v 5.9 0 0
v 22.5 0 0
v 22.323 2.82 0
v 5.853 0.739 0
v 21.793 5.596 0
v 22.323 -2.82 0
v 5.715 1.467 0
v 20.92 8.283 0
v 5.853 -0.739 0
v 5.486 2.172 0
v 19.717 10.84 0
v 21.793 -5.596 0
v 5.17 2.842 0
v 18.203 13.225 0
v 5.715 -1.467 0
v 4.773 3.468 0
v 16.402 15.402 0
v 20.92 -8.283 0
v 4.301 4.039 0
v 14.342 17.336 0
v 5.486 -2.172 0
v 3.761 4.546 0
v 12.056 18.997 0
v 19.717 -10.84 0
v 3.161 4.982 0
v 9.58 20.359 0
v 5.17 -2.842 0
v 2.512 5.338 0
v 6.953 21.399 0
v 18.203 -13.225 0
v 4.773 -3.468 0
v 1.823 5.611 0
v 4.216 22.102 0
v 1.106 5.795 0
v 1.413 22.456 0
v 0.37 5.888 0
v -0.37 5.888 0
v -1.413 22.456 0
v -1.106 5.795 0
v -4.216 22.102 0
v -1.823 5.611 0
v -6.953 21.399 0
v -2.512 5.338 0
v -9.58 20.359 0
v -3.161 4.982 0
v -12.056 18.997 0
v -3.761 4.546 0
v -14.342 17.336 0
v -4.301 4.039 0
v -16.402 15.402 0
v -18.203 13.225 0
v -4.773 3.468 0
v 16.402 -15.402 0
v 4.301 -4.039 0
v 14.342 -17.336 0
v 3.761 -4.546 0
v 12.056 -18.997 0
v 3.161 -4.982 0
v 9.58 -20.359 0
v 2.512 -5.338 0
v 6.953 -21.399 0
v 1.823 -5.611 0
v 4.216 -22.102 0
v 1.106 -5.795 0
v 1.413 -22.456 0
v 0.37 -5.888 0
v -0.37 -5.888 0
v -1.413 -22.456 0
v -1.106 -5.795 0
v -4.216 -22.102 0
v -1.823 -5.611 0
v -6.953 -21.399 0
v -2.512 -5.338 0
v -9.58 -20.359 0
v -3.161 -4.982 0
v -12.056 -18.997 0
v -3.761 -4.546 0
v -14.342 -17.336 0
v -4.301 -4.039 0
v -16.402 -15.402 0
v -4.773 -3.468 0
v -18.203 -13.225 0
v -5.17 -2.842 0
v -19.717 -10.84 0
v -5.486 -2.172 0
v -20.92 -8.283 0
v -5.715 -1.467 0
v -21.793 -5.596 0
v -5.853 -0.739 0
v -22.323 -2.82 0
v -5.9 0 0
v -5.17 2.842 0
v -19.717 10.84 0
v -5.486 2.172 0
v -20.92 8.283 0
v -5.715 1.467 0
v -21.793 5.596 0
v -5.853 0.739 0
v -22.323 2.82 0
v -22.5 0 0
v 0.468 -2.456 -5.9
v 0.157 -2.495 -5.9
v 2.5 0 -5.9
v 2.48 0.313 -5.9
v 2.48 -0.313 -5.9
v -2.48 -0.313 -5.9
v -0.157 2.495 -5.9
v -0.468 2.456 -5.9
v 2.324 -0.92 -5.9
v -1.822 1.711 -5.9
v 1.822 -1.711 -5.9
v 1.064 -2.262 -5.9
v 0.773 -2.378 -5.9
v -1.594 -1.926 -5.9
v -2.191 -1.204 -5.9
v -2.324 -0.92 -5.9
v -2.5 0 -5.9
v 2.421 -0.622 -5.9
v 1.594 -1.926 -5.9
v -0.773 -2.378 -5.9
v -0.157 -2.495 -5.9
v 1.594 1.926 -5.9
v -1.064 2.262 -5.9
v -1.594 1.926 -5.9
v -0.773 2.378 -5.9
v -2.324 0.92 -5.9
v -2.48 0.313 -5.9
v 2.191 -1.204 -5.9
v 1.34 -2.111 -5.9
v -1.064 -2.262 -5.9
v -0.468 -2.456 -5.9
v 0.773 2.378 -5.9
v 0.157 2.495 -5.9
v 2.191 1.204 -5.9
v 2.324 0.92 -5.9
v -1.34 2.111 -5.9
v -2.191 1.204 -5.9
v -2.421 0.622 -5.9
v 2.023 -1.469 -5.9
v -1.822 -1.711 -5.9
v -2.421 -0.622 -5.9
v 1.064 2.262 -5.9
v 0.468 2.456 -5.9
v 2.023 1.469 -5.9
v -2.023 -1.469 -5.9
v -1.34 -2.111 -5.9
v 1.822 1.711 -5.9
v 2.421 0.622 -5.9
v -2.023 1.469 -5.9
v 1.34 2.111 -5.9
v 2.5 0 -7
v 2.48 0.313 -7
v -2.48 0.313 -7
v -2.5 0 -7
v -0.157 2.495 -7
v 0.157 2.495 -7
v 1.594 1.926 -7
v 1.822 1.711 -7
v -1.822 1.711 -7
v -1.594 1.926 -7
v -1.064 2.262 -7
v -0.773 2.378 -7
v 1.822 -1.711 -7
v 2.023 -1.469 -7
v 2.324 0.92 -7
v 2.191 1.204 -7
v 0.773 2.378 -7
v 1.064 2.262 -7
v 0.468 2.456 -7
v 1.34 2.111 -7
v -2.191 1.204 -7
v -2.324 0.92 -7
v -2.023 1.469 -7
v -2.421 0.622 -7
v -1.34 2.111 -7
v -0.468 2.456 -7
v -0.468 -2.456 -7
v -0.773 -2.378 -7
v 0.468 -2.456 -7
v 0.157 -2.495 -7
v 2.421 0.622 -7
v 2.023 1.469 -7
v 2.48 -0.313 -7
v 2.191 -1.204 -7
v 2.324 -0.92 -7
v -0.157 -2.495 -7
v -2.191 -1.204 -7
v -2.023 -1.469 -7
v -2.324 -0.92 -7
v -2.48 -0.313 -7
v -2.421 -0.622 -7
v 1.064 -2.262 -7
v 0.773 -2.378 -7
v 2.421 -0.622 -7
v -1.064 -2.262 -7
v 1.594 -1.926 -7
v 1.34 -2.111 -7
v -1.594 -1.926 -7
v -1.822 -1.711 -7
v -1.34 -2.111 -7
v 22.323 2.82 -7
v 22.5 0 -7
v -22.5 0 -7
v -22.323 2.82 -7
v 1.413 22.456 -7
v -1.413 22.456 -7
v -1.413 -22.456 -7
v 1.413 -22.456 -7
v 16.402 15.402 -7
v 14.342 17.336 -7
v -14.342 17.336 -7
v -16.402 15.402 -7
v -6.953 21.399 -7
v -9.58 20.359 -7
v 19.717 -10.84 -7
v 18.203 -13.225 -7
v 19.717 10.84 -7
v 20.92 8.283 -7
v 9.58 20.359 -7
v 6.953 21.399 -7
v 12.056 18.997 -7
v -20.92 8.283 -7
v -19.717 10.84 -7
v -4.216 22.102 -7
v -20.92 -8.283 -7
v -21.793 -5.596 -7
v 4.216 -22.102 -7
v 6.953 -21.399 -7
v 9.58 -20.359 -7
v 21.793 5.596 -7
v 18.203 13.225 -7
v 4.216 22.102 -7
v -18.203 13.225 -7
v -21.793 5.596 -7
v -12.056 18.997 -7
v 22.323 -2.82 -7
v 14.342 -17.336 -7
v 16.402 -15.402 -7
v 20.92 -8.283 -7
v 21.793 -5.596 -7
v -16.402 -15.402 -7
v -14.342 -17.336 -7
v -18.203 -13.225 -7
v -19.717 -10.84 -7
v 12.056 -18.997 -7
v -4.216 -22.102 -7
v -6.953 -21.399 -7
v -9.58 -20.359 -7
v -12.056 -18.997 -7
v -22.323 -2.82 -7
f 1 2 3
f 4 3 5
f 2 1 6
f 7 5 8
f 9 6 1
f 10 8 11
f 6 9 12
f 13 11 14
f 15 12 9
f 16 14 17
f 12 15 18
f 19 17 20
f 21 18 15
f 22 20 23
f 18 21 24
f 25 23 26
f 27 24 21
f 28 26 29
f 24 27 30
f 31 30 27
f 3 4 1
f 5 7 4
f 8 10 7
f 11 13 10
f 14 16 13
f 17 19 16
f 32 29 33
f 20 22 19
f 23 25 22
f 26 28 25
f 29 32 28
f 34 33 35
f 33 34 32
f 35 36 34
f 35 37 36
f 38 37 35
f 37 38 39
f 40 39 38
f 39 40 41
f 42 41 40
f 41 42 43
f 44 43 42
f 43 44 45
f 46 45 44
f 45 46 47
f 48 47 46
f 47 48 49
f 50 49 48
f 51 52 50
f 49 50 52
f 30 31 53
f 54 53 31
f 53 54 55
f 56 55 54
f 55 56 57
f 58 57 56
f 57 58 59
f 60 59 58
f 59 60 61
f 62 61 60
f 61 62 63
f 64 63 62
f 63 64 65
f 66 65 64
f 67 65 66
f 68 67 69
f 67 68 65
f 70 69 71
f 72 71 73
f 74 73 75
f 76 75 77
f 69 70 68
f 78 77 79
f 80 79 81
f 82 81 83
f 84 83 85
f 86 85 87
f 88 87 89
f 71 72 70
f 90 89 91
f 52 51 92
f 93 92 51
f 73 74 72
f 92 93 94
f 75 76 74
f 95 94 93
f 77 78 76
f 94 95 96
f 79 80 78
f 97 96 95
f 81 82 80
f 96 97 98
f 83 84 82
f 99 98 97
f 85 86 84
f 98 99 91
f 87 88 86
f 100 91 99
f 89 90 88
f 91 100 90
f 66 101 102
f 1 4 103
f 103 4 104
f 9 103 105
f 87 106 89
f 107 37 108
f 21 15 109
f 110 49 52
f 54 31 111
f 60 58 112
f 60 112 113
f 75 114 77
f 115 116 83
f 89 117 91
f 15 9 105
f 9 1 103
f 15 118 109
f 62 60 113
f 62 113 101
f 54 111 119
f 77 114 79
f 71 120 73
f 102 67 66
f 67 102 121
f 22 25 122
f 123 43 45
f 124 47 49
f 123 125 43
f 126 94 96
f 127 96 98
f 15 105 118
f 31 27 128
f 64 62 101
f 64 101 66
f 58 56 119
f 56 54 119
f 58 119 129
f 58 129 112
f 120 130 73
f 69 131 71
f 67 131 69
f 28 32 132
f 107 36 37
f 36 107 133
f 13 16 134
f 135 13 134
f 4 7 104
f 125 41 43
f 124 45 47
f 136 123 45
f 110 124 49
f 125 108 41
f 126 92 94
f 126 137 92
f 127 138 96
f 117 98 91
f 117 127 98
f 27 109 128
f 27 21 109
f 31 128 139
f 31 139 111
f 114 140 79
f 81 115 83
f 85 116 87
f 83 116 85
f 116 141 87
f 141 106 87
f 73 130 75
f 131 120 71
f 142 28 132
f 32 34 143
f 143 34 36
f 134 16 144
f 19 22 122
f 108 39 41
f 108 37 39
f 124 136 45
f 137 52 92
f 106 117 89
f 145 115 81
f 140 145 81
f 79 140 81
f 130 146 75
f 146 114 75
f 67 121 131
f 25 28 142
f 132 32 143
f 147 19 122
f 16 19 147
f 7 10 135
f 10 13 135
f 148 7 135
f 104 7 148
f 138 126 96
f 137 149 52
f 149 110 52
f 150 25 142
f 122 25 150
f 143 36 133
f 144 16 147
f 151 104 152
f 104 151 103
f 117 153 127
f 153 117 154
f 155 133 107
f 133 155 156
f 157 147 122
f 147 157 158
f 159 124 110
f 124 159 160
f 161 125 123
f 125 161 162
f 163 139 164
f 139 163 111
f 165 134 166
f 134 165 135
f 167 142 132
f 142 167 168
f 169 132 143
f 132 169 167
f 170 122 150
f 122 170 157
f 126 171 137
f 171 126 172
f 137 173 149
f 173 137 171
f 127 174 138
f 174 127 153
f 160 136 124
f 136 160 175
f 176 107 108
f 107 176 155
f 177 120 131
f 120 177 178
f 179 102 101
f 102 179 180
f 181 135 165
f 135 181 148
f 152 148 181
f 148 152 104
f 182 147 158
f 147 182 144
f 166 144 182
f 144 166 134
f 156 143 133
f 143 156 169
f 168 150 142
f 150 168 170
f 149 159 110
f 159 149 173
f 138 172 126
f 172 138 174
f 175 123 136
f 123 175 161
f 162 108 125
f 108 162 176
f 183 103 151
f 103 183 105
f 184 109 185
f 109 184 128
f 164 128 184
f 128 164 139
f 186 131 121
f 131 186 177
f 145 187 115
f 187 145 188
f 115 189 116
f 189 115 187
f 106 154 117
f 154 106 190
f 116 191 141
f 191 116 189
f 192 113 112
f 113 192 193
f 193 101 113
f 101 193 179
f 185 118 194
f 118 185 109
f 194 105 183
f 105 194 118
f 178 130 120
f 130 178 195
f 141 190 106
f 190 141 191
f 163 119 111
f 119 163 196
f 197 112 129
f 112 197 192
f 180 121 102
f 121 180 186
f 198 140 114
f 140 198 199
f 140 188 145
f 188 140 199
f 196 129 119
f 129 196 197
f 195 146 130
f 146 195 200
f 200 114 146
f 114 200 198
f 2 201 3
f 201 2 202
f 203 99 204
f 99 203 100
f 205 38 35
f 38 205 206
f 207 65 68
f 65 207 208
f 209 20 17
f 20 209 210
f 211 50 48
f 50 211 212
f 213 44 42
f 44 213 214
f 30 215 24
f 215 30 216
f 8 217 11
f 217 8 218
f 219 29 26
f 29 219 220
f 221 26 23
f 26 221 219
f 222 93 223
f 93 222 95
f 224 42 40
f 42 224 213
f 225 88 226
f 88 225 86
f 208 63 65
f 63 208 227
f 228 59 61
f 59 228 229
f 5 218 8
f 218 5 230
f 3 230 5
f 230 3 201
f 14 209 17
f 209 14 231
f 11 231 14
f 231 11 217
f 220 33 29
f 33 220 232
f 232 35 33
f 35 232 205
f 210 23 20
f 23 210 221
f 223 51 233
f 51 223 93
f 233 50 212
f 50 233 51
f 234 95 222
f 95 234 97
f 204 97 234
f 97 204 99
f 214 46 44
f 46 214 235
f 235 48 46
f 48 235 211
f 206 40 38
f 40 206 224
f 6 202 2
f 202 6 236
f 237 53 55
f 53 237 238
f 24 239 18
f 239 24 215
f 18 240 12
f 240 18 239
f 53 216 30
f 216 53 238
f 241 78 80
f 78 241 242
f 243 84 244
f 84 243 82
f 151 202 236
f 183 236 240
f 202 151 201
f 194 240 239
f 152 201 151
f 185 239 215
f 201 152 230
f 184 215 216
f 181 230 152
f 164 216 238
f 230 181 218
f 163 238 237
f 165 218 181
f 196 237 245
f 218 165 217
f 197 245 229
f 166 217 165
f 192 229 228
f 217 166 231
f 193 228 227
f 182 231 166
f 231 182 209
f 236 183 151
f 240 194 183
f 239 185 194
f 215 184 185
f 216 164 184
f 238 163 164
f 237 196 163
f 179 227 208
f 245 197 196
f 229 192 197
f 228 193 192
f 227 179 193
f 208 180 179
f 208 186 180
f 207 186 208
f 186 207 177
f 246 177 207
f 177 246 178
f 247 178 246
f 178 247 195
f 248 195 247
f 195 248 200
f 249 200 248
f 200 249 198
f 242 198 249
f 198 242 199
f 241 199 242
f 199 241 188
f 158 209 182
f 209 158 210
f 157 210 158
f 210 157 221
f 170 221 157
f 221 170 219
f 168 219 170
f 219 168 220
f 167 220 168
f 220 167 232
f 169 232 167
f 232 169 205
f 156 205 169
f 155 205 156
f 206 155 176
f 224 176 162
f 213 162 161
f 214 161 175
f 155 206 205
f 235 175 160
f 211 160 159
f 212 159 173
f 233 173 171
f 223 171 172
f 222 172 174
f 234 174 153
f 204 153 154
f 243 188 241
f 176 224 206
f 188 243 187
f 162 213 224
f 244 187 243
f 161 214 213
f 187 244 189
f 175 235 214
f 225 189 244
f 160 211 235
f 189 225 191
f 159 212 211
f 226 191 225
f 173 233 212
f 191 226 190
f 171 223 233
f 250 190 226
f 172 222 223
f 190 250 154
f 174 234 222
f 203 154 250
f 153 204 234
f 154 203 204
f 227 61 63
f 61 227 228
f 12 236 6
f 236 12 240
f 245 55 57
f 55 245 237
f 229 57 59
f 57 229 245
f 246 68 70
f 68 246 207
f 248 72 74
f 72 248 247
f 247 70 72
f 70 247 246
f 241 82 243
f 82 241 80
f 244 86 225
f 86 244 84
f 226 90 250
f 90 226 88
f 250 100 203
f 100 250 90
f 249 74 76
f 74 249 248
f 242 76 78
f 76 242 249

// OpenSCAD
$fn = 50;


difference() {
	union() {
		translate(v = [0, 0, -7.0000000000]) {
			cylinder(h = 7, r = 22.5000000000);
		}
	}
	union() {
		translate(v = [0, 0, 0]) {
			rotate(a = [0, 0, 0]) {
				difference() {
					union() {
						#translate(v = [0, 0, -9.0000000000]) {
							cylinder(h = 9, r = 2.2500000000);
						}
						#translate(v = [0, 0, -5.9000000000]) {
							cylinder(h = 5.9000000000, r1 = 2.5000000000, r2 = 5.9000000000);
						}
						#translate(v = [0, 0, -9.0000000000]) {
							cylinder(h = 9, r = 2.5000000000);
						}
						#translate(v = [0, 0, -9.0000000000]) {
							cylinder(h = 9, r = 2.2500000000);
						}
					}
					union();
				}
			}
		}
	}
}
